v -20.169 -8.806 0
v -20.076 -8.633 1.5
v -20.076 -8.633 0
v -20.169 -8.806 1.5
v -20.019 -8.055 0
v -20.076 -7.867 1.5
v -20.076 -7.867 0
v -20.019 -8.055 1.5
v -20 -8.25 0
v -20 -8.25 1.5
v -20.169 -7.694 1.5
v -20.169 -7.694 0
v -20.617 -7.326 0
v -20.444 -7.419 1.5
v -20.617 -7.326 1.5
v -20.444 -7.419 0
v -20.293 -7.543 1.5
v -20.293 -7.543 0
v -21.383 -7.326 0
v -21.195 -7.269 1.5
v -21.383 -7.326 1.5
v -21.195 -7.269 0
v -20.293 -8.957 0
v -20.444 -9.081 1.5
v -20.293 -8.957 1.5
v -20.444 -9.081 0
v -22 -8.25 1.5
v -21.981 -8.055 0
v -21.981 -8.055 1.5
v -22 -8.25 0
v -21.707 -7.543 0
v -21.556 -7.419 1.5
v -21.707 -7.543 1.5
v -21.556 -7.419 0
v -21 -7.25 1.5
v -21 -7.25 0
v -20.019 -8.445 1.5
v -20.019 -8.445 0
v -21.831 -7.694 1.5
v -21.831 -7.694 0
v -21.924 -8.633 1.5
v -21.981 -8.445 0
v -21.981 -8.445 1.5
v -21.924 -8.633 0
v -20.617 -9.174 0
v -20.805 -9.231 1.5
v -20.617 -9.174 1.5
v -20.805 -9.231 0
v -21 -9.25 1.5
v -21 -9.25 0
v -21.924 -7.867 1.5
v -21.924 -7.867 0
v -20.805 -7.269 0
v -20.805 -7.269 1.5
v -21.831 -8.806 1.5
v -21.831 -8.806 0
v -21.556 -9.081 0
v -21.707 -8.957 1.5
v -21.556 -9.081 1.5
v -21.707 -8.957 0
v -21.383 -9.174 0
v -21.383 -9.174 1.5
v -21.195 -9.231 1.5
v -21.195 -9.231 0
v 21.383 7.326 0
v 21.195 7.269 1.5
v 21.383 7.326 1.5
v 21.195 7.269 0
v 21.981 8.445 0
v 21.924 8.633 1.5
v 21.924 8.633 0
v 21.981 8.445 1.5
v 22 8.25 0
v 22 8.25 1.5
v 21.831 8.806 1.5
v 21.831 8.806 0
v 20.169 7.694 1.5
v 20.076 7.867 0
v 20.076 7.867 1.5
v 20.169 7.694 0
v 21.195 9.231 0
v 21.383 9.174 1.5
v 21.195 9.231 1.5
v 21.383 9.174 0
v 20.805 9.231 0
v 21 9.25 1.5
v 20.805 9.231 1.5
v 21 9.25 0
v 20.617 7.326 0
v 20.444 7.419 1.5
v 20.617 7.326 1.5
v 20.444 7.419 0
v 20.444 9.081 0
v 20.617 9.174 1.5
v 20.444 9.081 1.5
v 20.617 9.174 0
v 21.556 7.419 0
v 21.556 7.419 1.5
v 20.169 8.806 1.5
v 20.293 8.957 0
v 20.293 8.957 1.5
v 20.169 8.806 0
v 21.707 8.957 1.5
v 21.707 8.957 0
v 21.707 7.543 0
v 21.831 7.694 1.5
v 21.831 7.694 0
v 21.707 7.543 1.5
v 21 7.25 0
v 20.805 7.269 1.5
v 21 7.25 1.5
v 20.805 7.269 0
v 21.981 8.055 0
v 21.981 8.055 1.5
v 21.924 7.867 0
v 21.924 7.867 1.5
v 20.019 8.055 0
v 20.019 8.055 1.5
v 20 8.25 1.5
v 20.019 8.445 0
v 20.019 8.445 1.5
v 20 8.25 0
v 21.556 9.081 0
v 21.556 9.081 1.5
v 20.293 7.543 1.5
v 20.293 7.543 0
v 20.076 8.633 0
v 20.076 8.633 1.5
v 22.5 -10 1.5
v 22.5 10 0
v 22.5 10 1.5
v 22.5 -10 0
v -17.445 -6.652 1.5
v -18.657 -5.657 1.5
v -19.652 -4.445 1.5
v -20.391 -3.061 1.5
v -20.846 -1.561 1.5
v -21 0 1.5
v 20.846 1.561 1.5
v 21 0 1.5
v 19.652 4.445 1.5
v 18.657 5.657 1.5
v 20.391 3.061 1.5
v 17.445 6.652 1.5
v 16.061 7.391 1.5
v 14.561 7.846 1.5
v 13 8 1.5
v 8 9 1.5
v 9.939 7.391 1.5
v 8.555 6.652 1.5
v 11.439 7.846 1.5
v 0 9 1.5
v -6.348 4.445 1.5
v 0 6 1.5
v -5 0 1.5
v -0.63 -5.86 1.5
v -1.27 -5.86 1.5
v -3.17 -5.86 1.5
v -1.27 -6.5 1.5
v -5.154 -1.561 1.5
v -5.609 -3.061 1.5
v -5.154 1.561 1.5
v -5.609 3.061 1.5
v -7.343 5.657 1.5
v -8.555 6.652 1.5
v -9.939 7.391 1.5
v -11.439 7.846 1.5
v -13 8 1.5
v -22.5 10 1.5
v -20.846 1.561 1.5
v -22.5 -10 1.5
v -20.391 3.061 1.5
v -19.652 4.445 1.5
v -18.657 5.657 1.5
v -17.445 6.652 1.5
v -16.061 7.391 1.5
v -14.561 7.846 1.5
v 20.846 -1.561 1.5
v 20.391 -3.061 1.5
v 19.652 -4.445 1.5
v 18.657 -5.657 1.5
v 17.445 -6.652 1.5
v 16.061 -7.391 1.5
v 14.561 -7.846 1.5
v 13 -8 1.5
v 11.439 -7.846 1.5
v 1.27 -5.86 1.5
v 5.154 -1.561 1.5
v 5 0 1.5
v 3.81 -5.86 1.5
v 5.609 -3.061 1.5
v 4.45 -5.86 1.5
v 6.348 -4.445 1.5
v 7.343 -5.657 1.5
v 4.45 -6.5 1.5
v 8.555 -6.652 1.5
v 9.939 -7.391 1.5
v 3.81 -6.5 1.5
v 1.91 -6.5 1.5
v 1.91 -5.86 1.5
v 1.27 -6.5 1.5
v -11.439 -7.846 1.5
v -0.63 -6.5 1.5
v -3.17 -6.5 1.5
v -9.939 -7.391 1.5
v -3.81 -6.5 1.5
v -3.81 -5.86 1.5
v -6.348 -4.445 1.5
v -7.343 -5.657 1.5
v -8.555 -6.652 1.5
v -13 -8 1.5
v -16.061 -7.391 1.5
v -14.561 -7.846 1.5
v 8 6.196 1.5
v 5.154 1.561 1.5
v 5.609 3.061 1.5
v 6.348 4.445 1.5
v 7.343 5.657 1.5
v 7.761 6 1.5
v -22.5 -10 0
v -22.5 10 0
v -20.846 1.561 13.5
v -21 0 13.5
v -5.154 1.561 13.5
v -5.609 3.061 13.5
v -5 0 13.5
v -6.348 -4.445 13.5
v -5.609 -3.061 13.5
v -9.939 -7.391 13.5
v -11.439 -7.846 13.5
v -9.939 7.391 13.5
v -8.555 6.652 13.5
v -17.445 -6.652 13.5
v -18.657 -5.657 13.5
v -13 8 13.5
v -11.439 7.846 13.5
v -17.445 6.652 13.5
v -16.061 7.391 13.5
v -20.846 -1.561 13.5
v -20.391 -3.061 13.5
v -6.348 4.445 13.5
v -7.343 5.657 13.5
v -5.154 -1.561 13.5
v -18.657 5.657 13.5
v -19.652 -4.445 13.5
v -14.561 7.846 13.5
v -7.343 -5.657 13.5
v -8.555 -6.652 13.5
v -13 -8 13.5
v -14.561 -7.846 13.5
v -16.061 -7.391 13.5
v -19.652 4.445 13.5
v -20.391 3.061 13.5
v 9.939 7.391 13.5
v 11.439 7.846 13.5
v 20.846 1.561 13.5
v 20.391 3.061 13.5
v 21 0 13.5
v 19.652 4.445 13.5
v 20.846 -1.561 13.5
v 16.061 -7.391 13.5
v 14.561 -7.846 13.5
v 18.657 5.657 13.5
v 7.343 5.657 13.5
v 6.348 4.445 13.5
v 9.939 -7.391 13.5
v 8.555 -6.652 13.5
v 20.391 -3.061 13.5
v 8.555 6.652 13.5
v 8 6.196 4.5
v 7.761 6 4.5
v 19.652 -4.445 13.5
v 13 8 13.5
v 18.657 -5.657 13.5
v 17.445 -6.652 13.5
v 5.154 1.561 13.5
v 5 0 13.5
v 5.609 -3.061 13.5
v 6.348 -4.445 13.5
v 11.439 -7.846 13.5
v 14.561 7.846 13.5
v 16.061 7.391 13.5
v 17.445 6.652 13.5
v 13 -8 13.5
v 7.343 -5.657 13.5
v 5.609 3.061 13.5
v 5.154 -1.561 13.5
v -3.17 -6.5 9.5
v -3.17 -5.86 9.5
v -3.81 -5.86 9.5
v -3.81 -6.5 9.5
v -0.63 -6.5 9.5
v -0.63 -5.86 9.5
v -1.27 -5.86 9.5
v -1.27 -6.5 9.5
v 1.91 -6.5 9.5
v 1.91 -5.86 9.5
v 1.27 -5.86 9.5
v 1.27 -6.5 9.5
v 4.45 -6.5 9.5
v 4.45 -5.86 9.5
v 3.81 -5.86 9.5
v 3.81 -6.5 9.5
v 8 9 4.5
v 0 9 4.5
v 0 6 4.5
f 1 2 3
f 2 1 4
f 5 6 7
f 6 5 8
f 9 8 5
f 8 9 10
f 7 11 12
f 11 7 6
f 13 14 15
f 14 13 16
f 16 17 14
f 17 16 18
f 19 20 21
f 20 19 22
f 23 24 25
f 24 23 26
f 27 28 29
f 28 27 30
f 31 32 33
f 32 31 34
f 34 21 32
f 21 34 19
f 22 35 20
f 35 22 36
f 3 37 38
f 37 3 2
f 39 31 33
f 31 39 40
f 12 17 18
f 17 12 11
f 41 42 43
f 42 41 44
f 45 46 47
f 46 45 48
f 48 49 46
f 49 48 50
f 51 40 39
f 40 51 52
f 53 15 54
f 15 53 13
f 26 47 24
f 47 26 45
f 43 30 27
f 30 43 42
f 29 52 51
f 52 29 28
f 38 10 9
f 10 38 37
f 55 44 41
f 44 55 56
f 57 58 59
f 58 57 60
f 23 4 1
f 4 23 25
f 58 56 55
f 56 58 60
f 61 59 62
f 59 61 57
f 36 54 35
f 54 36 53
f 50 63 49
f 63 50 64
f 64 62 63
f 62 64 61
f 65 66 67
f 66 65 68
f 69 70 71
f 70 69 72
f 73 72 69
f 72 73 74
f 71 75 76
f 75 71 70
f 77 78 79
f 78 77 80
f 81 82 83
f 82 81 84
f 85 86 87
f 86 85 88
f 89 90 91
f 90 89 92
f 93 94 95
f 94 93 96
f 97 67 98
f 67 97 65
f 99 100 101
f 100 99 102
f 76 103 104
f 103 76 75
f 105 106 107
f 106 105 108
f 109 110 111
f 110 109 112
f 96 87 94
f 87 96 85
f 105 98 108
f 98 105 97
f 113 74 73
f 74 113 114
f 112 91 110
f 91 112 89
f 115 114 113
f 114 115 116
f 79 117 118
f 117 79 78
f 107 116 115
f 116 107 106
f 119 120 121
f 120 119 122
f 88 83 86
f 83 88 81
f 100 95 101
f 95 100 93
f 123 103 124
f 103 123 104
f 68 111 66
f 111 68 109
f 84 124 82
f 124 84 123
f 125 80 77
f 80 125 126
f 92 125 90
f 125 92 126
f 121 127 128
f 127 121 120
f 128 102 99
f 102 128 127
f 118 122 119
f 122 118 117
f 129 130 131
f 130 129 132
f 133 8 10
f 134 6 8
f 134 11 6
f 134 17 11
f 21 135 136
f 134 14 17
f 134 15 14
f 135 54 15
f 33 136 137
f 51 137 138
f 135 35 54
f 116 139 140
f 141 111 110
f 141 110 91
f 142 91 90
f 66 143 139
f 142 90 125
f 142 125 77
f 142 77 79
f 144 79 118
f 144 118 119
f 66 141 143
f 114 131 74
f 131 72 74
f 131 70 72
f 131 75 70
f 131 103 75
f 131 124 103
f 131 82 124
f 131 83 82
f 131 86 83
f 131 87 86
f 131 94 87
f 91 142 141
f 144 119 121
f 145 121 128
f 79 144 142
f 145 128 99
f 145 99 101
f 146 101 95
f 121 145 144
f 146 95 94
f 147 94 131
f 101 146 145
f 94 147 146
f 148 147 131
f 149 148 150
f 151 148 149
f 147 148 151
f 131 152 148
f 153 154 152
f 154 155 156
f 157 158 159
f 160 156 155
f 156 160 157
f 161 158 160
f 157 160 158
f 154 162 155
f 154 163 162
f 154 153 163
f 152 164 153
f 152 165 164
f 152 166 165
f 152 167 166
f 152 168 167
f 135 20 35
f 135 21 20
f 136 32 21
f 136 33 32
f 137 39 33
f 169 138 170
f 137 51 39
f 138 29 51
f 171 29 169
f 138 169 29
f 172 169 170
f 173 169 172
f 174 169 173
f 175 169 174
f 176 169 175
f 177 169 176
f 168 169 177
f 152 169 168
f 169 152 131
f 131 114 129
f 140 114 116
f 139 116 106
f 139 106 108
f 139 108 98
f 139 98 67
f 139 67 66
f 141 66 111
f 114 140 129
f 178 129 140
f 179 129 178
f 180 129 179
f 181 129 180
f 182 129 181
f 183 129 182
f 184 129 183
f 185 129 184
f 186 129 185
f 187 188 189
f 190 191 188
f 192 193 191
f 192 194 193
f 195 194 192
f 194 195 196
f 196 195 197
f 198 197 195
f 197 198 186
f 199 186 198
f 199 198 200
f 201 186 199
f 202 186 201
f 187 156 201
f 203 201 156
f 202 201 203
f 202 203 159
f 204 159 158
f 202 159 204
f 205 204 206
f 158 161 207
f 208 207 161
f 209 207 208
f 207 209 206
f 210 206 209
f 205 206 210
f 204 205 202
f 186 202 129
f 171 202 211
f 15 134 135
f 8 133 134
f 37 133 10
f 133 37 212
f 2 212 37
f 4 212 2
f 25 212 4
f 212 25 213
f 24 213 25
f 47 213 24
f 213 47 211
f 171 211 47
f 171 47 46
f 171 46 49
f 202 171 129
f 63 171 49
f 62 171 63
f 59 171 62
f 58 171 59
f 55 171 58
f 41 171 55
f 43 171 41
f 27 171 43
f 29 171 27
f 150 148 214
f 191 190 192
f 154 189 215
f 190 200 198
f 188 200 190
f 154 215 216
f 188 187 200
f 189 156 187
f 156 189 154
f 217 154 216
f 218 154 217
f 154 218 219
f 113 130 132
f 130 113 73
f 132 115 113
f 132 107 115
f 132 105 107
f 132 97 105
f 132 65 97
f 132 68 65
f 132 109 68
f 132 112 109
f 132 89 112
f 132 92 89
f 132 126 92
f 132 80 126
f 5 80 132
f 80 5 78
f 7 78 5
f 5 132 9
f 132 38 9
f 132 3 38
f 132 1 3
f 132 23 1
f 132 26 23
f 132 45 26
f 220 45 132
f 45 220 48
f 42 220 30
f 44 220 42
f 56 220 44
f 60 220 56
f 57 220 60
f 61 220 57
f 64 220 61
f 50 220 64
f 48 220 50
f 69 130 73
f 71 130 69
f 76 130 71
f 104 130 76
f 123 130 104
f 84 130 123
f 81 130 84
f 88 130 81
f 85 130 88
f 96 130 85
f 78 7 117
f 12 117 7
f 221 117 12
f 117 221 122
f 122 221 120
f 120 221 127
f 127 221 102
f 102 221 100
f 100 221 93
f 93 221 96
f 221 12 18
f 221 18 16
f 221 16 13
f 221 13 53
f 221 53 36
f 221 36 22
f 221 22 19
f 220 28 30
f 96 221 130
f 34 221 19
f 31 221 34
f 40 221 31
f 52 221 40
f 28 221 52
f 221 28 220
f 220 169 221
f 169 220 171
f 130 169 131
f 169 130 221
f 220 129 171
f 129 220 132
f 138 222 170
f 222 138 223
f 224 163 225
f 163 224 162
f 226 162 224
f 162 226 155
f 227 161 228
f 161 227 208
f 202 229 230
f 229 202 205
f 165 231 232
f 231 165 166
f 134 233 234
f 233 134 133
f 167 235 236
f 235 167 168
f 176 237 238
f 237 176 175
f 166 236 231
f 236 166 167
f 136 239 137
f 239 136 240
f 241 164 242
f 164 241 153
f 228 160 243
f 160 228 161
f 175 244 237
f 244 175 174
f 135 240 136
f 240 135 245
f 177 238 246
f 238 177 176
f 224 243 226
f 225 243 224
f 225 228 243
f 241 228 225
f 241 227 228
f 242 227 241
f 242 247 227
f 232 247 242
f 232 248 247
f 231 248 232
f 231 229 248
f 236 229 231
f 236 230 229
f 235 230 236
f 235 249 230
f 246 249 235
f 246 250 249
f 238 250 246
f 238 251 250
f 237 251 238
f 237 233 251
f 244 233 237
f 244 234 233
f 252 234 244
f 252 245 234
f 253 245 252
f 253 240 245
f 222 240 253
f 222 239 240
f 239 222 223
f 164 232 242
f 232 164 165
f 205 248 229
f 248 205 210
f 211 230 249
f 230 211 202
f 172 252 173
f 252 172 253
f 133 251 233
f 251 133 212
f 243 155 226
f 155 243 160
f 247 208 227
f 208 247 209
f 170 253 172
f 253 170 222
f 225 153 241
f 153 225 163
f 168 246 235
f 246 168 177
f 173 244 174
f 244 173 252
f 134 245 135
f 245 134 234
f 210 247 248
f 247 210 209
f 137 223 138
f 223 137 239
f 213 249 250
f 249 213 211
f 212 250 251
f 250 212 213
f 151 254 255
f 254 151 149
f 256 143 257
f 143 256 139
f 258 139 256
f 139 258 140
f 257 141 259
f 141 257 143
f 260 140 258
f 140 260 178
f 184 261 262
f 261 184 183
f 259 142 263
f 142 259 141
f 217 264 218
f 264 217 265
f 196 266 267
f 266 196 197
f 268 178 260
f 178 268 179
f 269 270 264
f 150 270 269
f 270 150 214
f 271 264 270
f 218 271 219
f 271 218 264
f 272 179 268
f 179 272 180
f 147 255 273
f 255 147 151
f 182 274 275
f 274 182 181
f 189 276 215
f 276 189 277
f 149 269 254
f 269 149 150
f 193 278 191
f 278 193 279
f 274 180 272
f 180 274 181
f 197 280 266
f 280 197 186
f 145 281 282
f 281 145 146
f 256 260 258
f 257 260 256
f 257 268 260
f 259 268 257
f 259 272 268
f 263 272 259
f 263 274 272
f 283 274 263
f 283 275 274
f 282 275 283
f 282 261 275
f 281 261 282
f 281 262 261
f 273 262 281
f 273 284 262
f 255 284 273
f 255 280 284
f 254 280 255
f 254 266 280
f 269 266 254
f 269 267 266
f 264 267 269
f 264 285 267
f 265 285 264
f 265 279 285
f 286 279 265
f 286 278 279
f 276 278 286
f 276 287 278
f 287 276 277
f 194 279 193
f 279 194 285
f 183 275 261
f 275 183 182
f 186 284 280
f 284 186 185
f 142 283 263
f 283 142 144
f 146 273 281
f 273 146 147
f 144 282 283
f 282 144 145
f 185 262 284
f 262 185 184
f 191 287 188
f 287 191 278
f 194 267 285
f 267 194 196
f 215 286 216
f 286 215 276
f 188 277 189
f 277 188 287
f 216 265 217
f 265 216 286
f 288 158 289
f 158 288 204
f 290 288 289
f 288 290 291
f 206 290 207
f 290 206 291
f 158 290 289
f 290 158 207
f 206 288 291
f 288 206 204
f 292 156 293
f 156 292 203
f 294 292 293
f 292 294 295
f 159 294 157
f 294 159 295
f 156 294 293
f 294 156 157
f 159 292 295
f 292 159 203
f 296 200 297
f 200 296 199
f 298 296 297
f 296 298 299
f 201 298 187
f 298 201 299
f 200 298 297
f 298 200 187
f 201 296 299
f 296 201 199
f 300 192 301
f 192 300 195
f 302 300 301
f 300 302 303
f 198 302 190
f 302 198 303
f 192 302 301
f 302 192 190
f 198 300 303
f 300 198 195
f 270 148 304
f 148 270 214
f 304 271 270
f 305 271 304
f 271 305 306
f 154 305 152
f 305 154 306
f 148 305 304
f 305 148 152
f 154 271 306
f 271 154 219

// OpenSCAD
// HC-SR04 visual source. Units: millimeters; origin: PCB bottom-center.

$fn = 32;

pcb = [45, 20, 1.5];
holes = [[-21, -8.25], [21, 8.25]];

module board() {
  difference() {
    translate([-pcb[0] / 2, -pcb[1] / 2, 0]) cube(pcb);
    for (hole = holes)
      translate([hole[0], hole[1], -0.1]) cylinder(d = 2, h = pcb[2] + 0.2);
  }
}

color("#2e7d5b") board();

for (x = [-13, 13])
  color("#b7b7b7") translate([x, 0, pcb[2]]) cylinder(d = 16, h = 12);

for (x = [-3.81 : 2.54 : 3.81])
  color("#d6a53a") translate([x, -6.5, pcb[2]]) cube([0.64, 0.64, 8], center = false);

color("#b7b7b7") translate([0, 6, pcb[2]]) cube([8, 3, 3], center = false);
